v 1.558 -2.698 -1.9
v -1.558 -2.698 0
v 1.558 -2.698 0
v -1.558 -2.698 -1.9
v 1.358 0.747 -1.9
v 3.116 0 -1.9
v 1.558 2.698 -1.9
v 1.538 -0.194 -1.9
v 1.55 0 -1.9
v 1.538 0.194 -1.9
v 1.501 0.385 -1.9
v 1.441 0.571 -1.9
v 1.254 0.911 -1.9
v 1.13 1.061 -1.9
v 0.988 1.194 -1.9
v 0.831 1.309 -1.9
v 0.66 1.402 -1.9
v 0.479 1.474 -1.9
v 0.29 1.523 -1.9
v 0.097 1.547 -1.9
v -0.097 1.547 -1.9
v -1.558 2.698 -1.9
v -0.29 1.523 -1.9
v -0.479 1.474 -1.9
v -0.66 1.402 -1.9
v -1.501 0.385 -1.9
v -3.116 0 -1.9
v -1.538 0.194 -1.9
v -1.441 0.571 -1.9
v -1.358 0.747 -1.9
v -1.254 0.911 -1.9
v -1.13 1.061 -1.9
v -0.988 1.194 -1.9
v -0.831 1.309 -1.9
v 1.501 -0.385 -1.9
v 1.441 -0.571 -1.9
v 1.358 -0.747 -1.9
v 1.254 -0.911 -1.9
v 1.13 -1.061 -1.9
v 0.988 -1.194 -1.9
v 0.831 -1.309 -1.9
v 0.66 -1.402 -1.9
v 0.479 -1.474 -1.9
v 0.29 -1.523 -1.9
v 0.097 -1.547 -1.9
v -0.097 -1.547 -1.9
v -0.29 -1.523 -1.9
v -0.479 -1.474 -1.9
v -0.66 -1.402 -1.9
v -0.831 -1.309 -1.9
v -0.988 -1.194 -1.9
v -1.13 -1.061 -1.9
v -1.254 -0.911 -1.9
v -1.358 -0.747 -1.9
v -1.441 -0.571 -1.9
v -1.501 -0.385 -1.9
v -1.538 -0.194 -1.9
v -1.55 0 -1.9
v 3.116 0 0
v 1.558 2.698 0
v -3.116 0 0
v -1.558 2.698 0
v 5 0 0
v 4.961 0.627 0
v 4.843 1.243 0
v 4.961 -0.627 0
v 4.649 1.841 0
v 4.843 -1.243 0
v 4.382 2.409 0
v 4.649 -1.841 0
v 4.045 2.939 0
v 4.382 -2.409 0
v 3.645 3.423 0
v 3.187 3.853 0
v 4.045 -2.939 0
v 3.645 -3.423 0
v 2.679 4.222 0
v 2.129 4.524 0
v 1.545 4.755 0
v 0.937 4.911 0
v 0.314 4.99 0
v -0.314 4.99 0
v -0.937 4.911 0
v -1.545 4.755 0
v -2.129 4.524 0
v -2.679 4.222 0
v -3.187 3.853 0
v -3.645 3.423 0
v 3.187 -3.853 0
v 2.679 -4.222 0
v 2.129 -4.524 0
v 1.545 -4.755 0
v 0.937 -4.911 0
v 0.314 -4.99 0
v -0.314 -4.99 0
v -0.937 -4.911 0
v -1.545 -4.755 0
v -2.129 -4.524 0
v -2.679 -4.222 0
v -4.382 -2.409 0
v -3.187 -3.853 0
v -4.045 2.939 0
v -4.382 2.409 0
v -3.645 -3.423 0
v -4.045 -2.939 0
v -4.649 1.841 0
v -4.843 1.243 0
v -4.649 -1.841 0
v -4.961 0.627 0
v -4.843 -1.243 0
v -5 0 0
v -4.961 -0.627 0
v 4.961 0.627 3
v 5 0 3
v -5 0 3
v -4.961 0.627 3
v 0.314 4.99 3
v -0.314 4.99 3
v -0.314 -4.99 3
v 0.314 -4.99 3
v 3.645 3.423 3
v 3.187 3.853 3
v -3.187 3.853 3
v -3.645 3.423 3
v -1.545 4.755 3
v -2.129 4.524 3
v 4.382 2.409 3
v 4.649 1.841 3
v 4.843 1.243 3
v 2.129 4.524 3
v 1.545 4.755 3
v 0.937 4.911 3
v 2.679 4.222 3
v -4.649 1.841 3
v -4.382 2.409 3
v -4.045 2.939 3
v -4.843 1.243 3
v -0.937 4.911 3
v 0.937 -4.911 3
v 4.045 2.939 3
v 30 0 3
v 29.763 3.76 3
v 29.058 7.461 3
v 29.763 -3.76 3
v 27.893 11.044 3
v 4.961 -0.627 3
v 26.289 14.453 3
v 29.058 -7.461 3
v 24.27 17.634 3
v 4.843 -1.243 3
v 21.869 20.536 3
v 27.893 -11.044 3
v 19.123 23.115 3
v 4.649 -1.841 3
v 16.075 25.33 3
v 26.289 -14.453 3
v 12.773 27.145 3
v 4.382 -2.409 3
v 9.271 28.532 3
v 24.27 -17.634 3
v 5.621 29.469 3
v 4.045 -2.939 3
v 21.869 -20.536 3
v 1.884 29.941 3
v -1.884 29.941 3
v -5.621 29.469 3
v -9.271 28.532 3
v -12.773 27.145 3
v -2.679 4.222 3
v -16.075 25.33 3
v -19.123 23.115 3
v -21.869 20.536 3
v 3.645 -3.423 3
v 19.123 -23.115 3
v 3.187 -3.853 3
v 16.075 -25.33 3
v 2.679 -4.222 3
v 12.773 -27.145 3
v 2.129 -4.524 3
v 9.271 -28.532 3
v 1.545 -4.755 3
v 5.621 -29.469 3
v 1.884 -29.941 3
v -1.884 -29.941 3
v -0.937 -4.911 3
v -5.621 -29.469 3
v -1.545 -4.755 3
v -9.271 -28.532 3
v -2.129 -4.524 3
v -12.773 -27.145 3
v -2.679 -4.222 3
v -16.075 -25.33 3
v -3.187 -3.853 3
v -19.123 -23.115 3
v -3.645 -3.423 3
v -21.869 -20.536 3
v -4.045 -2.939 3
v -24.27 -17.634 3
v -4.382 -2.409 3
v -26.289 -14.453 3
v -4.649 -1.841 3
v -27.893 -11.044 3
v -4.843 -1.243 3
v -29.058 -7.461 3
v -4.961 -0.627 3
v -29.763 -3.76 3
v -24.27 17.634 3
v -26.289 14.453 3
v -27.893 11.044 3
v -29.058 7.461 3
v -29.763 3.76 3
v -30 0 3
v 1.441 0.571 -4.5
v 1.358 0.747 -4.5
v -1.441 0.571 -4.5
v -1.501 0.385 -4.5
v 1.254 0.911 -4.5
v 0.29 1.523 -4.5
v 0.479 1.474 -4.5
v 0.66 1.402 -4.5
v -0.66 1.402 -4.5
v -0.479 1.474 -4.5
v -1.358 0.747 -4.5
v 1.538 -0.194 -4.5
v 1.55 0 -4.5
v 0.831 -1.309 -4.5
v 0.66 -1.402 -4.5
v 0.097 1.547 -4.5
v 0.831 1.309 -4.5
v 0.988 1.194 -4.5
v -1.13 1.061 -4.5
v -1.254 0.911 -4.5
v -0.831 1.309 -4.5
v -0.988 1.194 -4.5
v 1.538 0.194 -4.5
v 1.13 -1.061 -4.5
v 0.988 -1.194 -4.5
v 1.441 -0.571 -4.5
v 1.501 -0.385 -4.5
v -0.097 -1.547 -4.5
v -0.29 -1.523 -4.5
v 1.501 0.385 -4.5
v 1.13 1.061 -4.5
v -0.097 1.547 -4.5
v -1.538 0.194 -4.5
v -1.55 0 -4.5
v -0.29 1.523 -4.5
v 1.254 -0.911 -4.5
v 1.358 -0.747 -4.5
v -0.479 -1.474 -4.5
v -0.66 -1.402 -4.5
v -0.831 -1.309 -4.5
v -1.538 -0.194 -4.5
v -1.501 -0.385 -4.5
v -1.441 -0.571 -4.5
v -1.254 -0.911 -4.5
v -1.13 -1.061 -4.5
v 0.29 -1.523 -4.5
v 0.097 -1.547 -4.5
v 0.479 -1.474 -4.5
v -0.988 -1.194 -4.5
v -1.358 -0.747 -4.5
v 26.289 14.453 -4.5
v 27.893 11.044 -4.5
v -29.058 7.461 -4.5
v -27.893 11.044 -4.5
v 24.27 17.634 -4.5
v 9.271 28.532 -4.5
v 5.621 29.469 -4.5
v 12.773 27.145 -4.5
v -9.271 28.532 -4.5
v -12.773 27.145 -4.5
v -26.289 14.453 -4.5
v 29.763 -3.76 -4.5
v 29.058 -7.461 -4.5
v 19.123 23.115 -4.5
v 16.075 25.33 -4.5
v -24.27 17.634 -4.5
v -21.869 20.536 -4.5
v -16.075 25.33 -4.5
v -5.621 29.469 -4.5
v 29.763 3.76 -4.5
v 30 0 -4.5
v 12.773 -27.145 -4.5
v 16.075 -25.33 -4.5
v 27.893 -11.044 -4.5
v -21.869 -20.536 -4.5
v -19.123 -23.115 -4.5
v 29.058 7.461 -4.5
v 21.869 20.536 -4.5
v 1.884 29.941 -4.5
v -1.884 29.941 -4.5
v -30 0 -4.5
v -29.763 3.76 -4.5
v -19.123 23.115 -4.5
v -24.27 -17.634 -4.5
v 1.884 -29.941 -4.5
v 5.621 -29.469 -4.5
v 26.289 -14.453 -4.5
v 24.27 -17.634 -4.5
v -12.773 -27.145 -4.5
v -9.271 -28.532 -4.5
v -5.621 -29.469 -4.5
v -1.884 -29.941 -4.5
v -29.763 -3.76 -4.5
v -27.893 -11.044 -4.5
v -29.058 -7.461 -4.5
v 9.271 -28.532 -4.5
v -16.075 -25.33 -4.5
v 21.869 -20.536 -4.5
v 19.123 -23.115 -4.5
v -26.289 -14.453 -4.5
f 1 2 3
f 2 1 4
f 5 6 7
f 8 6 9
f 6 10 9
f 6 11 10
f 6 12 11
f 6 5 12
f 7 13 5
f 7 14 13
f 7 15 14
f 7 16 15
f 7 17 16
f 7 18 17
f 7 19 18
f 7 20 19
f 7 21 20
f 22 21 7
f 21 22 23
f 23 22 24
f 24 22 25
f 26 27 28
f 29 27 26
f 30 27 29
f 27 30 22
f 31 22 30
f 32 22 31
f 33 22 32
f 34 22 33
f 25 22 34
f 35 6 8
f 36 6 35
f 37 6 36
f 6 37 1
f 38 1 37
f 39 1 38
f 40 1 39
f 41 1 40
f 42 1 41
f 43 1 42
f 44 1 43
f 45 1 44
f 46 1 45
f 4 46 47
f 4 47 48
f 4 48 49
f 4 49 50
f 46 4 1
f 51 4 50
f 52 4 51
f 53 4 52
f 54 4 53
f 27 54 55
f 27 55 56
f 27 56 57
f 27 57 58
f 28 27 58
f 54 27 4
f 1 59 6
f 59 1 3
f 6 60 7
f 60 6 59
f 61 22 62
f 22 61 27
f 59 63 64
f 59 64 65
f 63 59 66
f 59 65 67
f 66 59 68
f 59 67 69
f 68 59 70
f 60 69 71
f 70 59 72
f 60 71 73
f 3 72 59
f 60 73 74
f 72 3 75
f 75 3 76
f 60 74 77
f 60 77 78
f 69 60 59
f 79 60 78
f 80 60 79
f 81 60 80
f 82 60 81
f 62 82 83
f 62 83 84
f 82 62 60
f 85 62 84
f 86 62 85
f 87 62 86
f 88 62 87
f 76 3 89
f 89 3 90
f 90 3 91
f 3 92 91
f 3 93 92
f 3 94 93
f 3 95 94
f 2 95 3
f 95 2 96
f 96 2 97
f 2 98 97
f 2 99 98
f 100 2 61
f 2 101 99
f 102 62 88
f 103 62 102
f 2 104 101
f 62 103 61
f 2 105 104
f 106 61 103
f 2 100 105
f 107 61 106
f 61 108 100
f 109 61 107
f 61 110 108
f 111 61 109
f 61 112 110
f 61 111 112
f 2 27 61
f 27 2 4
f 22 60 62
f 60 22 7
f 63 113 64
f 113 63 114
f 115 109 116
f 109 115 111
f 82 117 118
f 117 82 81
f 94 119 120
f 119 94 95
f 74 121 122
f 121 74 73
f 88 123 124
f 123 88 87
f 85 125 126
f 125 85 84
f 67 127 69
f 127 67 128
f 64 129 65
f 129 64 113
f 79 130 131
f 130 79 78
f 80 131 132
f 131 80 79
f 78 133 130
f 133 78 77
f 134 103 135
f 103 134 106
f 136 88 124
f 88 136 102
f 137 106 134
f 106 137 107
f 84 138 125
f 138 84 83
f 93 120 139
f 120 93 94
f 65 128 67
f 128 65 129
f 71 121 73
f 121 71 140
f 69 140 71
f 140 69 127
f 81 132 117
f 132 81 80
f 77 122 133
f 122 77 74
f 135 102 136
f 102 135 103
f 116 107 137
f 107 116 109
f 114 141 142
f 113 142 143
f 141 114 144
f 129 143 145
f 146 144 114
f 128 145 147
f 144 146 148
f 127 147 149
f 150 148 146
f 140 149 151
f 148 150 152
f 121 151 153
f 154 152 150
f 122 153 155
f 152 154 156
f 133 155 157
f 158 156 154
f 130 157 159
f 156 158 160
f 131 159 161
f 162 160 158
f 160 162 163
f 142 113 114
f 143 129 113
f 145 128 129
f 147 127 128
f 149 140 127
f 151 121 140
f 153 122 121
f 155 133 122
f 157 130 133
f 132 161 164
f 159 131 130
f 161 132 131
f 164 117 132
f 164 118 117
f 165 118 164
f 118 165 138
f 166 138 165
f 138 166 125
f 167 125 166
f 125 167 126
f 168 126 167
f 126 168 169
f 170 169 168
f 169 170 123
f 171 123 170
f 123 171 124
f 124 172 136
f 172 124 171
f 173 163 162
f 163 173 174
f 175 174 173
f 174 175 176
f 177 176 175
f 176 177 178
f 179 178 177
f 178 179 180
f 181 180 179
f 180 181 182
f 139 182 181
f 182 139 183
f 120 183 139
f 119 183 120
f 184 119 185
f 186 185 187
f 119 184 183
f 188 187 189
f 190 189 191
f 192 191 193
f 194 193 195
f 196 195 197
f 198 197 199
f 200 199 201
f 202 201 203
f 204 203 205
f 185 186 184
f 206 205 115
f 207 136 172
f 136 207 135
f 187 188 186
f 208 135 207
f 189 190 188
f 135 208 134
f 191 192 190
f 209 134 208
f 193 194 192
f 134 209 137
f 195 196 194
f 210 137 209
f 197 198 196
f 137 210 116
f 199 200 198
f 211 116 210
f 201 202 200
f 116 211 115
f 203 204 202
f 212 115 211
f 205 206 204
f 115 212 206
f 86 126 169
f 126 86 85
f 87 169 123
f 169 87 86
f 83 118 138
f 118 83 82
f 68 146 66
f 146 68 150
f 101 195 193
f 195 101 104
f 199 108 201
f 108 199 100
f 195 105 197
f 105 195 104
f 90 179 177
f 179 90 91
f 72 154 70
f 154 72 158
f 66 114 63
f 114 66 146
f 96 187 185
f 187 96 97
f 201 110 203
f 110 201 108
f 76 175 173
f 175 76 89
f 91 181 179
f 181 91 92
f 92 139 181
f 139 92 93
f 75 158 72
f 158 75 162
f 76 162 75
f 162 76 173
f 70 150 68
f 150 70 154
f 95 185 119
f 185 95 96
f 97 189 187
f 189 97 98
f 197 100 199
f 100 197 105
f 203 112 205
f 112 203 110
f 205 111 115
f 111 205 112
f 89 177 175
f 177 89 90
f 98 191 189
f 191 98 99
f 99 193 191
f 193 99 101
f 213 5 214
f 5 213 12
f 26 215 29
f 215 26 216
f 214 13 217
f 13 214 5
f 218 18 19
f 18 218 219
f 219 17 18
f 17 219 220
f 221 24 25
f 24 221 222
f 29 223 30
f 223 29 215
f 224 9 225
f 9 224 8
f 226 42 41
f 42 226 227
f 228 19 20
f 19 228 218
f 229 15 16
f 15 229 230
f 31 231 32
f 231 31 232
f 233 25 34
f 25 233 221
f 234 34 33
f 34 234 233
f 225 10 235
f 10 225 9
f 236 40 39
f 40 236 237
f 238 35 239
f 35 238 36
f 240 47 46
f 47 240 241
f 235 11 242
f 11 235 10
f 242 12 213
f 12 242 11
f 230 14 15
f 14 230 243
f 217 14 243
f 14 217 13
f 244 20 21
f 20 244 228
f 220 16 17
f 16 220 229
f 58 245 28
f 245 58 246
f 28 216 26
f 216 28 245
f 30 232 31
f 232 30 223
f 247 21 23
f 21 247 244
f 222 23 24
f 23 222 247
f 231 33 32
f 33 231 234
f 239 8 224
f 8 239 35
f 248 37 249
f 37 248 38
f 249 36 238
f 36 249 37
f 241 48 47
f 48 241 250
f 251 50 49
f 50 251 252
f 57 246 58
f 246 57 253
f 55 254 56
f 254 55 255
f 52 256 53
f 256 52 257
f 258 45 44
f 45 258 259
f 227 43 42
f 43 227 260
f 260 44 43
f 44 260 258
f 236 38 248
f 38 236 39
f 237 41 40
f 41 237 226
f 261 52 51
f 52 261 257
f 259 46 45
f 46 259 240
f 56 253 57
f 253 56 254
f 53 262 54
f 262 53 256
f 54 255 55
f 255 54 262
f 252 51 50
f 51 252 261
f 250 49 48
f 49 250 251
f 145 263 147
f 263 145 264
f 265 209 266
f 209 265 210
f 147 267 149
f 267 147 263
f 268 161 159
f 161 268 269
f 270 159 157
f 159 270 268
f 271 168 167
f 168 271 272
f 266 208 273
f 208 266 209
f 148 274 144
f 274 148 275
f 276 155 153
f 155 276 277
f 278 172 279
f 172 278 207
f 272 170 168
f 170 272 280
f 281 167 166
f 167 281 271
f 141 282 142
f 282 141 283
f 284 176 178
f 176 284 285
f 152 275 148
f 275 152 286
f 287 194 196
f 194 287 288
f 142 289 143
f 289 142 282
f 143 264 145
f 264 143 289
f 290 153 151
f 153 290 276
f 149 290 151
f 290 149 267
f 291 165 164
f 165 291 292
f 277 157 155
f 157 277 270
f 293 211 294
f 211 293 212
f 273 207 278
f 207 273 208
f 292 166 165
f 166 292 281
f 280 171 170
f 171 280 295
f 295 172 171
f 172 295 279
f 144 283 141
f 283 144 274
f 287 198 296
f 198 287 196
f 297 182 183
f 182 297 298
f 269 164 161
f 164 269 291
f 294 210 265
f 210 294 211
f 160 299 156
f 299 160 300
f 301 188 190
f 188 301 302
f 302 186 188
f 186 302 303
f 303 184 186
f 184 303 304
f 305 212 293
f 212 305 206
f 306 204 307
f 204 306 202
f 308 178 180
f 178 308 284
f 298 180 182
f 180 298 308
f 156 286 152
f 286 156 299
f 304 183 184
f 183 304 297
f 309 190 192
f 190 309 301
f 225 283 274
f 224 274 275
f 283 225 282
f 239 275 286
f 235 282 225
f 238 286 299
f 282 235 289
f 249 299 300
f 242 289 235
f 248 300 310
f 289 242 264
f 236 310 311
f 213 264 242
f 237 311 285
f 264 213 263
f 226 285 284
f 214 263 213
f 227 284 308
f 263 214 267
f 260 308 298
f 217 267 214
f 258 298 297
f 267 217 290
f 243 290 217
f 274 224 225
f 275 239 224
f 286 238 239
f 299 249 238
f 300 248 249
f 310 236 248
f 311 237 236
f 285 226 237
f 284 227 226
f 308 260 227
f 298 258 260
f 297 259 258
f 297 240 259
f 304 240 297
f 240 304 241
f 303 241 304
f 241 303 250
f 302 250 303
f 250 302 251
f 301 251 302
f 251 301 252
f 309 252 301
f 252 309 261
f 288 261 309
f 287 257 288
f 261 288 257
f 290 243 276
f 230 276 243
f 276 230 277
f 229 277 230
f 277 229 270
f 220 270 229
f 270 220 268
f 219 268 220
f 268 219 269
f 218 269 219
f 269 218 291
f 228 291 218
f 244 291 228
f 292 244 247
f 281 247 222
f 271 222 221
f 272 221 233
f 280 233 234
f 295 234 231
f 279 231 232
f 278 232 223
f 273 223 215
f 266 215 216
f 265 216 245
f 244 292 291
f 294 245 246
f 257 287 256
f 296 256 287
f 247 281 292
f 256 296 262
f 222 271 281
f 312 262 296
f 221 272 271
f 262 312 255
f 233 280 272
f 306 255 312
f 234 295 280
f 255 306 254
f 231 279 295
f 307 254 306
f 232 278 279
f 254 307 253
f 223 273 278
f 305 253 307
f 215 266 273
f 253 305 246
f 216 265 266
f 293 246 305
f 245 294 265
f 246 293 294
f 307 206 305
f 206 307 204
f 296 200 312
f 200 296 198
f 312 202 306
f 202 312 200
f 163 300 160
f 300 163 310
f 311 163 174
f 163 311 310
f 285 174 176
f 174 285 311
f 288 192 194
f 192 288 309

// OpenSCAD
$fn = 50;


difference() {
	union() {
		translate(v = [0, 0, -4.5000000000]) {
			cylinder(h = 7.5000000000, r = 30.0000000000);
		}
	}
	union() {
		translate(v = [0, 0, 0]) {
			rotate(a = [0, 0, 0]) {
				difference() {
					union() {
						translate(v = [0, 0, -1.9000000000]) {
							linear_extrude(height = 1.9000000000) {
								polygon(points = [[3.1158000000, 0.0000000000], [1.5579000000, 2.6983619531], [-1.5579000000, 2.6983619531], [-3.1158000000, 0.0000000000], [-1.5579000000, -2.6983619531], [1.5579000000, -2.6983619531]]);
							}
						}
					}
					union();
				}
			}
		}
		#cylinder(h = 3, r = 5.0000000000);
		#translate(v = [0, 0, -100.0000000000]) {
			cylinder(h = 200, r = 1.5500000000);
		}
	}
}
